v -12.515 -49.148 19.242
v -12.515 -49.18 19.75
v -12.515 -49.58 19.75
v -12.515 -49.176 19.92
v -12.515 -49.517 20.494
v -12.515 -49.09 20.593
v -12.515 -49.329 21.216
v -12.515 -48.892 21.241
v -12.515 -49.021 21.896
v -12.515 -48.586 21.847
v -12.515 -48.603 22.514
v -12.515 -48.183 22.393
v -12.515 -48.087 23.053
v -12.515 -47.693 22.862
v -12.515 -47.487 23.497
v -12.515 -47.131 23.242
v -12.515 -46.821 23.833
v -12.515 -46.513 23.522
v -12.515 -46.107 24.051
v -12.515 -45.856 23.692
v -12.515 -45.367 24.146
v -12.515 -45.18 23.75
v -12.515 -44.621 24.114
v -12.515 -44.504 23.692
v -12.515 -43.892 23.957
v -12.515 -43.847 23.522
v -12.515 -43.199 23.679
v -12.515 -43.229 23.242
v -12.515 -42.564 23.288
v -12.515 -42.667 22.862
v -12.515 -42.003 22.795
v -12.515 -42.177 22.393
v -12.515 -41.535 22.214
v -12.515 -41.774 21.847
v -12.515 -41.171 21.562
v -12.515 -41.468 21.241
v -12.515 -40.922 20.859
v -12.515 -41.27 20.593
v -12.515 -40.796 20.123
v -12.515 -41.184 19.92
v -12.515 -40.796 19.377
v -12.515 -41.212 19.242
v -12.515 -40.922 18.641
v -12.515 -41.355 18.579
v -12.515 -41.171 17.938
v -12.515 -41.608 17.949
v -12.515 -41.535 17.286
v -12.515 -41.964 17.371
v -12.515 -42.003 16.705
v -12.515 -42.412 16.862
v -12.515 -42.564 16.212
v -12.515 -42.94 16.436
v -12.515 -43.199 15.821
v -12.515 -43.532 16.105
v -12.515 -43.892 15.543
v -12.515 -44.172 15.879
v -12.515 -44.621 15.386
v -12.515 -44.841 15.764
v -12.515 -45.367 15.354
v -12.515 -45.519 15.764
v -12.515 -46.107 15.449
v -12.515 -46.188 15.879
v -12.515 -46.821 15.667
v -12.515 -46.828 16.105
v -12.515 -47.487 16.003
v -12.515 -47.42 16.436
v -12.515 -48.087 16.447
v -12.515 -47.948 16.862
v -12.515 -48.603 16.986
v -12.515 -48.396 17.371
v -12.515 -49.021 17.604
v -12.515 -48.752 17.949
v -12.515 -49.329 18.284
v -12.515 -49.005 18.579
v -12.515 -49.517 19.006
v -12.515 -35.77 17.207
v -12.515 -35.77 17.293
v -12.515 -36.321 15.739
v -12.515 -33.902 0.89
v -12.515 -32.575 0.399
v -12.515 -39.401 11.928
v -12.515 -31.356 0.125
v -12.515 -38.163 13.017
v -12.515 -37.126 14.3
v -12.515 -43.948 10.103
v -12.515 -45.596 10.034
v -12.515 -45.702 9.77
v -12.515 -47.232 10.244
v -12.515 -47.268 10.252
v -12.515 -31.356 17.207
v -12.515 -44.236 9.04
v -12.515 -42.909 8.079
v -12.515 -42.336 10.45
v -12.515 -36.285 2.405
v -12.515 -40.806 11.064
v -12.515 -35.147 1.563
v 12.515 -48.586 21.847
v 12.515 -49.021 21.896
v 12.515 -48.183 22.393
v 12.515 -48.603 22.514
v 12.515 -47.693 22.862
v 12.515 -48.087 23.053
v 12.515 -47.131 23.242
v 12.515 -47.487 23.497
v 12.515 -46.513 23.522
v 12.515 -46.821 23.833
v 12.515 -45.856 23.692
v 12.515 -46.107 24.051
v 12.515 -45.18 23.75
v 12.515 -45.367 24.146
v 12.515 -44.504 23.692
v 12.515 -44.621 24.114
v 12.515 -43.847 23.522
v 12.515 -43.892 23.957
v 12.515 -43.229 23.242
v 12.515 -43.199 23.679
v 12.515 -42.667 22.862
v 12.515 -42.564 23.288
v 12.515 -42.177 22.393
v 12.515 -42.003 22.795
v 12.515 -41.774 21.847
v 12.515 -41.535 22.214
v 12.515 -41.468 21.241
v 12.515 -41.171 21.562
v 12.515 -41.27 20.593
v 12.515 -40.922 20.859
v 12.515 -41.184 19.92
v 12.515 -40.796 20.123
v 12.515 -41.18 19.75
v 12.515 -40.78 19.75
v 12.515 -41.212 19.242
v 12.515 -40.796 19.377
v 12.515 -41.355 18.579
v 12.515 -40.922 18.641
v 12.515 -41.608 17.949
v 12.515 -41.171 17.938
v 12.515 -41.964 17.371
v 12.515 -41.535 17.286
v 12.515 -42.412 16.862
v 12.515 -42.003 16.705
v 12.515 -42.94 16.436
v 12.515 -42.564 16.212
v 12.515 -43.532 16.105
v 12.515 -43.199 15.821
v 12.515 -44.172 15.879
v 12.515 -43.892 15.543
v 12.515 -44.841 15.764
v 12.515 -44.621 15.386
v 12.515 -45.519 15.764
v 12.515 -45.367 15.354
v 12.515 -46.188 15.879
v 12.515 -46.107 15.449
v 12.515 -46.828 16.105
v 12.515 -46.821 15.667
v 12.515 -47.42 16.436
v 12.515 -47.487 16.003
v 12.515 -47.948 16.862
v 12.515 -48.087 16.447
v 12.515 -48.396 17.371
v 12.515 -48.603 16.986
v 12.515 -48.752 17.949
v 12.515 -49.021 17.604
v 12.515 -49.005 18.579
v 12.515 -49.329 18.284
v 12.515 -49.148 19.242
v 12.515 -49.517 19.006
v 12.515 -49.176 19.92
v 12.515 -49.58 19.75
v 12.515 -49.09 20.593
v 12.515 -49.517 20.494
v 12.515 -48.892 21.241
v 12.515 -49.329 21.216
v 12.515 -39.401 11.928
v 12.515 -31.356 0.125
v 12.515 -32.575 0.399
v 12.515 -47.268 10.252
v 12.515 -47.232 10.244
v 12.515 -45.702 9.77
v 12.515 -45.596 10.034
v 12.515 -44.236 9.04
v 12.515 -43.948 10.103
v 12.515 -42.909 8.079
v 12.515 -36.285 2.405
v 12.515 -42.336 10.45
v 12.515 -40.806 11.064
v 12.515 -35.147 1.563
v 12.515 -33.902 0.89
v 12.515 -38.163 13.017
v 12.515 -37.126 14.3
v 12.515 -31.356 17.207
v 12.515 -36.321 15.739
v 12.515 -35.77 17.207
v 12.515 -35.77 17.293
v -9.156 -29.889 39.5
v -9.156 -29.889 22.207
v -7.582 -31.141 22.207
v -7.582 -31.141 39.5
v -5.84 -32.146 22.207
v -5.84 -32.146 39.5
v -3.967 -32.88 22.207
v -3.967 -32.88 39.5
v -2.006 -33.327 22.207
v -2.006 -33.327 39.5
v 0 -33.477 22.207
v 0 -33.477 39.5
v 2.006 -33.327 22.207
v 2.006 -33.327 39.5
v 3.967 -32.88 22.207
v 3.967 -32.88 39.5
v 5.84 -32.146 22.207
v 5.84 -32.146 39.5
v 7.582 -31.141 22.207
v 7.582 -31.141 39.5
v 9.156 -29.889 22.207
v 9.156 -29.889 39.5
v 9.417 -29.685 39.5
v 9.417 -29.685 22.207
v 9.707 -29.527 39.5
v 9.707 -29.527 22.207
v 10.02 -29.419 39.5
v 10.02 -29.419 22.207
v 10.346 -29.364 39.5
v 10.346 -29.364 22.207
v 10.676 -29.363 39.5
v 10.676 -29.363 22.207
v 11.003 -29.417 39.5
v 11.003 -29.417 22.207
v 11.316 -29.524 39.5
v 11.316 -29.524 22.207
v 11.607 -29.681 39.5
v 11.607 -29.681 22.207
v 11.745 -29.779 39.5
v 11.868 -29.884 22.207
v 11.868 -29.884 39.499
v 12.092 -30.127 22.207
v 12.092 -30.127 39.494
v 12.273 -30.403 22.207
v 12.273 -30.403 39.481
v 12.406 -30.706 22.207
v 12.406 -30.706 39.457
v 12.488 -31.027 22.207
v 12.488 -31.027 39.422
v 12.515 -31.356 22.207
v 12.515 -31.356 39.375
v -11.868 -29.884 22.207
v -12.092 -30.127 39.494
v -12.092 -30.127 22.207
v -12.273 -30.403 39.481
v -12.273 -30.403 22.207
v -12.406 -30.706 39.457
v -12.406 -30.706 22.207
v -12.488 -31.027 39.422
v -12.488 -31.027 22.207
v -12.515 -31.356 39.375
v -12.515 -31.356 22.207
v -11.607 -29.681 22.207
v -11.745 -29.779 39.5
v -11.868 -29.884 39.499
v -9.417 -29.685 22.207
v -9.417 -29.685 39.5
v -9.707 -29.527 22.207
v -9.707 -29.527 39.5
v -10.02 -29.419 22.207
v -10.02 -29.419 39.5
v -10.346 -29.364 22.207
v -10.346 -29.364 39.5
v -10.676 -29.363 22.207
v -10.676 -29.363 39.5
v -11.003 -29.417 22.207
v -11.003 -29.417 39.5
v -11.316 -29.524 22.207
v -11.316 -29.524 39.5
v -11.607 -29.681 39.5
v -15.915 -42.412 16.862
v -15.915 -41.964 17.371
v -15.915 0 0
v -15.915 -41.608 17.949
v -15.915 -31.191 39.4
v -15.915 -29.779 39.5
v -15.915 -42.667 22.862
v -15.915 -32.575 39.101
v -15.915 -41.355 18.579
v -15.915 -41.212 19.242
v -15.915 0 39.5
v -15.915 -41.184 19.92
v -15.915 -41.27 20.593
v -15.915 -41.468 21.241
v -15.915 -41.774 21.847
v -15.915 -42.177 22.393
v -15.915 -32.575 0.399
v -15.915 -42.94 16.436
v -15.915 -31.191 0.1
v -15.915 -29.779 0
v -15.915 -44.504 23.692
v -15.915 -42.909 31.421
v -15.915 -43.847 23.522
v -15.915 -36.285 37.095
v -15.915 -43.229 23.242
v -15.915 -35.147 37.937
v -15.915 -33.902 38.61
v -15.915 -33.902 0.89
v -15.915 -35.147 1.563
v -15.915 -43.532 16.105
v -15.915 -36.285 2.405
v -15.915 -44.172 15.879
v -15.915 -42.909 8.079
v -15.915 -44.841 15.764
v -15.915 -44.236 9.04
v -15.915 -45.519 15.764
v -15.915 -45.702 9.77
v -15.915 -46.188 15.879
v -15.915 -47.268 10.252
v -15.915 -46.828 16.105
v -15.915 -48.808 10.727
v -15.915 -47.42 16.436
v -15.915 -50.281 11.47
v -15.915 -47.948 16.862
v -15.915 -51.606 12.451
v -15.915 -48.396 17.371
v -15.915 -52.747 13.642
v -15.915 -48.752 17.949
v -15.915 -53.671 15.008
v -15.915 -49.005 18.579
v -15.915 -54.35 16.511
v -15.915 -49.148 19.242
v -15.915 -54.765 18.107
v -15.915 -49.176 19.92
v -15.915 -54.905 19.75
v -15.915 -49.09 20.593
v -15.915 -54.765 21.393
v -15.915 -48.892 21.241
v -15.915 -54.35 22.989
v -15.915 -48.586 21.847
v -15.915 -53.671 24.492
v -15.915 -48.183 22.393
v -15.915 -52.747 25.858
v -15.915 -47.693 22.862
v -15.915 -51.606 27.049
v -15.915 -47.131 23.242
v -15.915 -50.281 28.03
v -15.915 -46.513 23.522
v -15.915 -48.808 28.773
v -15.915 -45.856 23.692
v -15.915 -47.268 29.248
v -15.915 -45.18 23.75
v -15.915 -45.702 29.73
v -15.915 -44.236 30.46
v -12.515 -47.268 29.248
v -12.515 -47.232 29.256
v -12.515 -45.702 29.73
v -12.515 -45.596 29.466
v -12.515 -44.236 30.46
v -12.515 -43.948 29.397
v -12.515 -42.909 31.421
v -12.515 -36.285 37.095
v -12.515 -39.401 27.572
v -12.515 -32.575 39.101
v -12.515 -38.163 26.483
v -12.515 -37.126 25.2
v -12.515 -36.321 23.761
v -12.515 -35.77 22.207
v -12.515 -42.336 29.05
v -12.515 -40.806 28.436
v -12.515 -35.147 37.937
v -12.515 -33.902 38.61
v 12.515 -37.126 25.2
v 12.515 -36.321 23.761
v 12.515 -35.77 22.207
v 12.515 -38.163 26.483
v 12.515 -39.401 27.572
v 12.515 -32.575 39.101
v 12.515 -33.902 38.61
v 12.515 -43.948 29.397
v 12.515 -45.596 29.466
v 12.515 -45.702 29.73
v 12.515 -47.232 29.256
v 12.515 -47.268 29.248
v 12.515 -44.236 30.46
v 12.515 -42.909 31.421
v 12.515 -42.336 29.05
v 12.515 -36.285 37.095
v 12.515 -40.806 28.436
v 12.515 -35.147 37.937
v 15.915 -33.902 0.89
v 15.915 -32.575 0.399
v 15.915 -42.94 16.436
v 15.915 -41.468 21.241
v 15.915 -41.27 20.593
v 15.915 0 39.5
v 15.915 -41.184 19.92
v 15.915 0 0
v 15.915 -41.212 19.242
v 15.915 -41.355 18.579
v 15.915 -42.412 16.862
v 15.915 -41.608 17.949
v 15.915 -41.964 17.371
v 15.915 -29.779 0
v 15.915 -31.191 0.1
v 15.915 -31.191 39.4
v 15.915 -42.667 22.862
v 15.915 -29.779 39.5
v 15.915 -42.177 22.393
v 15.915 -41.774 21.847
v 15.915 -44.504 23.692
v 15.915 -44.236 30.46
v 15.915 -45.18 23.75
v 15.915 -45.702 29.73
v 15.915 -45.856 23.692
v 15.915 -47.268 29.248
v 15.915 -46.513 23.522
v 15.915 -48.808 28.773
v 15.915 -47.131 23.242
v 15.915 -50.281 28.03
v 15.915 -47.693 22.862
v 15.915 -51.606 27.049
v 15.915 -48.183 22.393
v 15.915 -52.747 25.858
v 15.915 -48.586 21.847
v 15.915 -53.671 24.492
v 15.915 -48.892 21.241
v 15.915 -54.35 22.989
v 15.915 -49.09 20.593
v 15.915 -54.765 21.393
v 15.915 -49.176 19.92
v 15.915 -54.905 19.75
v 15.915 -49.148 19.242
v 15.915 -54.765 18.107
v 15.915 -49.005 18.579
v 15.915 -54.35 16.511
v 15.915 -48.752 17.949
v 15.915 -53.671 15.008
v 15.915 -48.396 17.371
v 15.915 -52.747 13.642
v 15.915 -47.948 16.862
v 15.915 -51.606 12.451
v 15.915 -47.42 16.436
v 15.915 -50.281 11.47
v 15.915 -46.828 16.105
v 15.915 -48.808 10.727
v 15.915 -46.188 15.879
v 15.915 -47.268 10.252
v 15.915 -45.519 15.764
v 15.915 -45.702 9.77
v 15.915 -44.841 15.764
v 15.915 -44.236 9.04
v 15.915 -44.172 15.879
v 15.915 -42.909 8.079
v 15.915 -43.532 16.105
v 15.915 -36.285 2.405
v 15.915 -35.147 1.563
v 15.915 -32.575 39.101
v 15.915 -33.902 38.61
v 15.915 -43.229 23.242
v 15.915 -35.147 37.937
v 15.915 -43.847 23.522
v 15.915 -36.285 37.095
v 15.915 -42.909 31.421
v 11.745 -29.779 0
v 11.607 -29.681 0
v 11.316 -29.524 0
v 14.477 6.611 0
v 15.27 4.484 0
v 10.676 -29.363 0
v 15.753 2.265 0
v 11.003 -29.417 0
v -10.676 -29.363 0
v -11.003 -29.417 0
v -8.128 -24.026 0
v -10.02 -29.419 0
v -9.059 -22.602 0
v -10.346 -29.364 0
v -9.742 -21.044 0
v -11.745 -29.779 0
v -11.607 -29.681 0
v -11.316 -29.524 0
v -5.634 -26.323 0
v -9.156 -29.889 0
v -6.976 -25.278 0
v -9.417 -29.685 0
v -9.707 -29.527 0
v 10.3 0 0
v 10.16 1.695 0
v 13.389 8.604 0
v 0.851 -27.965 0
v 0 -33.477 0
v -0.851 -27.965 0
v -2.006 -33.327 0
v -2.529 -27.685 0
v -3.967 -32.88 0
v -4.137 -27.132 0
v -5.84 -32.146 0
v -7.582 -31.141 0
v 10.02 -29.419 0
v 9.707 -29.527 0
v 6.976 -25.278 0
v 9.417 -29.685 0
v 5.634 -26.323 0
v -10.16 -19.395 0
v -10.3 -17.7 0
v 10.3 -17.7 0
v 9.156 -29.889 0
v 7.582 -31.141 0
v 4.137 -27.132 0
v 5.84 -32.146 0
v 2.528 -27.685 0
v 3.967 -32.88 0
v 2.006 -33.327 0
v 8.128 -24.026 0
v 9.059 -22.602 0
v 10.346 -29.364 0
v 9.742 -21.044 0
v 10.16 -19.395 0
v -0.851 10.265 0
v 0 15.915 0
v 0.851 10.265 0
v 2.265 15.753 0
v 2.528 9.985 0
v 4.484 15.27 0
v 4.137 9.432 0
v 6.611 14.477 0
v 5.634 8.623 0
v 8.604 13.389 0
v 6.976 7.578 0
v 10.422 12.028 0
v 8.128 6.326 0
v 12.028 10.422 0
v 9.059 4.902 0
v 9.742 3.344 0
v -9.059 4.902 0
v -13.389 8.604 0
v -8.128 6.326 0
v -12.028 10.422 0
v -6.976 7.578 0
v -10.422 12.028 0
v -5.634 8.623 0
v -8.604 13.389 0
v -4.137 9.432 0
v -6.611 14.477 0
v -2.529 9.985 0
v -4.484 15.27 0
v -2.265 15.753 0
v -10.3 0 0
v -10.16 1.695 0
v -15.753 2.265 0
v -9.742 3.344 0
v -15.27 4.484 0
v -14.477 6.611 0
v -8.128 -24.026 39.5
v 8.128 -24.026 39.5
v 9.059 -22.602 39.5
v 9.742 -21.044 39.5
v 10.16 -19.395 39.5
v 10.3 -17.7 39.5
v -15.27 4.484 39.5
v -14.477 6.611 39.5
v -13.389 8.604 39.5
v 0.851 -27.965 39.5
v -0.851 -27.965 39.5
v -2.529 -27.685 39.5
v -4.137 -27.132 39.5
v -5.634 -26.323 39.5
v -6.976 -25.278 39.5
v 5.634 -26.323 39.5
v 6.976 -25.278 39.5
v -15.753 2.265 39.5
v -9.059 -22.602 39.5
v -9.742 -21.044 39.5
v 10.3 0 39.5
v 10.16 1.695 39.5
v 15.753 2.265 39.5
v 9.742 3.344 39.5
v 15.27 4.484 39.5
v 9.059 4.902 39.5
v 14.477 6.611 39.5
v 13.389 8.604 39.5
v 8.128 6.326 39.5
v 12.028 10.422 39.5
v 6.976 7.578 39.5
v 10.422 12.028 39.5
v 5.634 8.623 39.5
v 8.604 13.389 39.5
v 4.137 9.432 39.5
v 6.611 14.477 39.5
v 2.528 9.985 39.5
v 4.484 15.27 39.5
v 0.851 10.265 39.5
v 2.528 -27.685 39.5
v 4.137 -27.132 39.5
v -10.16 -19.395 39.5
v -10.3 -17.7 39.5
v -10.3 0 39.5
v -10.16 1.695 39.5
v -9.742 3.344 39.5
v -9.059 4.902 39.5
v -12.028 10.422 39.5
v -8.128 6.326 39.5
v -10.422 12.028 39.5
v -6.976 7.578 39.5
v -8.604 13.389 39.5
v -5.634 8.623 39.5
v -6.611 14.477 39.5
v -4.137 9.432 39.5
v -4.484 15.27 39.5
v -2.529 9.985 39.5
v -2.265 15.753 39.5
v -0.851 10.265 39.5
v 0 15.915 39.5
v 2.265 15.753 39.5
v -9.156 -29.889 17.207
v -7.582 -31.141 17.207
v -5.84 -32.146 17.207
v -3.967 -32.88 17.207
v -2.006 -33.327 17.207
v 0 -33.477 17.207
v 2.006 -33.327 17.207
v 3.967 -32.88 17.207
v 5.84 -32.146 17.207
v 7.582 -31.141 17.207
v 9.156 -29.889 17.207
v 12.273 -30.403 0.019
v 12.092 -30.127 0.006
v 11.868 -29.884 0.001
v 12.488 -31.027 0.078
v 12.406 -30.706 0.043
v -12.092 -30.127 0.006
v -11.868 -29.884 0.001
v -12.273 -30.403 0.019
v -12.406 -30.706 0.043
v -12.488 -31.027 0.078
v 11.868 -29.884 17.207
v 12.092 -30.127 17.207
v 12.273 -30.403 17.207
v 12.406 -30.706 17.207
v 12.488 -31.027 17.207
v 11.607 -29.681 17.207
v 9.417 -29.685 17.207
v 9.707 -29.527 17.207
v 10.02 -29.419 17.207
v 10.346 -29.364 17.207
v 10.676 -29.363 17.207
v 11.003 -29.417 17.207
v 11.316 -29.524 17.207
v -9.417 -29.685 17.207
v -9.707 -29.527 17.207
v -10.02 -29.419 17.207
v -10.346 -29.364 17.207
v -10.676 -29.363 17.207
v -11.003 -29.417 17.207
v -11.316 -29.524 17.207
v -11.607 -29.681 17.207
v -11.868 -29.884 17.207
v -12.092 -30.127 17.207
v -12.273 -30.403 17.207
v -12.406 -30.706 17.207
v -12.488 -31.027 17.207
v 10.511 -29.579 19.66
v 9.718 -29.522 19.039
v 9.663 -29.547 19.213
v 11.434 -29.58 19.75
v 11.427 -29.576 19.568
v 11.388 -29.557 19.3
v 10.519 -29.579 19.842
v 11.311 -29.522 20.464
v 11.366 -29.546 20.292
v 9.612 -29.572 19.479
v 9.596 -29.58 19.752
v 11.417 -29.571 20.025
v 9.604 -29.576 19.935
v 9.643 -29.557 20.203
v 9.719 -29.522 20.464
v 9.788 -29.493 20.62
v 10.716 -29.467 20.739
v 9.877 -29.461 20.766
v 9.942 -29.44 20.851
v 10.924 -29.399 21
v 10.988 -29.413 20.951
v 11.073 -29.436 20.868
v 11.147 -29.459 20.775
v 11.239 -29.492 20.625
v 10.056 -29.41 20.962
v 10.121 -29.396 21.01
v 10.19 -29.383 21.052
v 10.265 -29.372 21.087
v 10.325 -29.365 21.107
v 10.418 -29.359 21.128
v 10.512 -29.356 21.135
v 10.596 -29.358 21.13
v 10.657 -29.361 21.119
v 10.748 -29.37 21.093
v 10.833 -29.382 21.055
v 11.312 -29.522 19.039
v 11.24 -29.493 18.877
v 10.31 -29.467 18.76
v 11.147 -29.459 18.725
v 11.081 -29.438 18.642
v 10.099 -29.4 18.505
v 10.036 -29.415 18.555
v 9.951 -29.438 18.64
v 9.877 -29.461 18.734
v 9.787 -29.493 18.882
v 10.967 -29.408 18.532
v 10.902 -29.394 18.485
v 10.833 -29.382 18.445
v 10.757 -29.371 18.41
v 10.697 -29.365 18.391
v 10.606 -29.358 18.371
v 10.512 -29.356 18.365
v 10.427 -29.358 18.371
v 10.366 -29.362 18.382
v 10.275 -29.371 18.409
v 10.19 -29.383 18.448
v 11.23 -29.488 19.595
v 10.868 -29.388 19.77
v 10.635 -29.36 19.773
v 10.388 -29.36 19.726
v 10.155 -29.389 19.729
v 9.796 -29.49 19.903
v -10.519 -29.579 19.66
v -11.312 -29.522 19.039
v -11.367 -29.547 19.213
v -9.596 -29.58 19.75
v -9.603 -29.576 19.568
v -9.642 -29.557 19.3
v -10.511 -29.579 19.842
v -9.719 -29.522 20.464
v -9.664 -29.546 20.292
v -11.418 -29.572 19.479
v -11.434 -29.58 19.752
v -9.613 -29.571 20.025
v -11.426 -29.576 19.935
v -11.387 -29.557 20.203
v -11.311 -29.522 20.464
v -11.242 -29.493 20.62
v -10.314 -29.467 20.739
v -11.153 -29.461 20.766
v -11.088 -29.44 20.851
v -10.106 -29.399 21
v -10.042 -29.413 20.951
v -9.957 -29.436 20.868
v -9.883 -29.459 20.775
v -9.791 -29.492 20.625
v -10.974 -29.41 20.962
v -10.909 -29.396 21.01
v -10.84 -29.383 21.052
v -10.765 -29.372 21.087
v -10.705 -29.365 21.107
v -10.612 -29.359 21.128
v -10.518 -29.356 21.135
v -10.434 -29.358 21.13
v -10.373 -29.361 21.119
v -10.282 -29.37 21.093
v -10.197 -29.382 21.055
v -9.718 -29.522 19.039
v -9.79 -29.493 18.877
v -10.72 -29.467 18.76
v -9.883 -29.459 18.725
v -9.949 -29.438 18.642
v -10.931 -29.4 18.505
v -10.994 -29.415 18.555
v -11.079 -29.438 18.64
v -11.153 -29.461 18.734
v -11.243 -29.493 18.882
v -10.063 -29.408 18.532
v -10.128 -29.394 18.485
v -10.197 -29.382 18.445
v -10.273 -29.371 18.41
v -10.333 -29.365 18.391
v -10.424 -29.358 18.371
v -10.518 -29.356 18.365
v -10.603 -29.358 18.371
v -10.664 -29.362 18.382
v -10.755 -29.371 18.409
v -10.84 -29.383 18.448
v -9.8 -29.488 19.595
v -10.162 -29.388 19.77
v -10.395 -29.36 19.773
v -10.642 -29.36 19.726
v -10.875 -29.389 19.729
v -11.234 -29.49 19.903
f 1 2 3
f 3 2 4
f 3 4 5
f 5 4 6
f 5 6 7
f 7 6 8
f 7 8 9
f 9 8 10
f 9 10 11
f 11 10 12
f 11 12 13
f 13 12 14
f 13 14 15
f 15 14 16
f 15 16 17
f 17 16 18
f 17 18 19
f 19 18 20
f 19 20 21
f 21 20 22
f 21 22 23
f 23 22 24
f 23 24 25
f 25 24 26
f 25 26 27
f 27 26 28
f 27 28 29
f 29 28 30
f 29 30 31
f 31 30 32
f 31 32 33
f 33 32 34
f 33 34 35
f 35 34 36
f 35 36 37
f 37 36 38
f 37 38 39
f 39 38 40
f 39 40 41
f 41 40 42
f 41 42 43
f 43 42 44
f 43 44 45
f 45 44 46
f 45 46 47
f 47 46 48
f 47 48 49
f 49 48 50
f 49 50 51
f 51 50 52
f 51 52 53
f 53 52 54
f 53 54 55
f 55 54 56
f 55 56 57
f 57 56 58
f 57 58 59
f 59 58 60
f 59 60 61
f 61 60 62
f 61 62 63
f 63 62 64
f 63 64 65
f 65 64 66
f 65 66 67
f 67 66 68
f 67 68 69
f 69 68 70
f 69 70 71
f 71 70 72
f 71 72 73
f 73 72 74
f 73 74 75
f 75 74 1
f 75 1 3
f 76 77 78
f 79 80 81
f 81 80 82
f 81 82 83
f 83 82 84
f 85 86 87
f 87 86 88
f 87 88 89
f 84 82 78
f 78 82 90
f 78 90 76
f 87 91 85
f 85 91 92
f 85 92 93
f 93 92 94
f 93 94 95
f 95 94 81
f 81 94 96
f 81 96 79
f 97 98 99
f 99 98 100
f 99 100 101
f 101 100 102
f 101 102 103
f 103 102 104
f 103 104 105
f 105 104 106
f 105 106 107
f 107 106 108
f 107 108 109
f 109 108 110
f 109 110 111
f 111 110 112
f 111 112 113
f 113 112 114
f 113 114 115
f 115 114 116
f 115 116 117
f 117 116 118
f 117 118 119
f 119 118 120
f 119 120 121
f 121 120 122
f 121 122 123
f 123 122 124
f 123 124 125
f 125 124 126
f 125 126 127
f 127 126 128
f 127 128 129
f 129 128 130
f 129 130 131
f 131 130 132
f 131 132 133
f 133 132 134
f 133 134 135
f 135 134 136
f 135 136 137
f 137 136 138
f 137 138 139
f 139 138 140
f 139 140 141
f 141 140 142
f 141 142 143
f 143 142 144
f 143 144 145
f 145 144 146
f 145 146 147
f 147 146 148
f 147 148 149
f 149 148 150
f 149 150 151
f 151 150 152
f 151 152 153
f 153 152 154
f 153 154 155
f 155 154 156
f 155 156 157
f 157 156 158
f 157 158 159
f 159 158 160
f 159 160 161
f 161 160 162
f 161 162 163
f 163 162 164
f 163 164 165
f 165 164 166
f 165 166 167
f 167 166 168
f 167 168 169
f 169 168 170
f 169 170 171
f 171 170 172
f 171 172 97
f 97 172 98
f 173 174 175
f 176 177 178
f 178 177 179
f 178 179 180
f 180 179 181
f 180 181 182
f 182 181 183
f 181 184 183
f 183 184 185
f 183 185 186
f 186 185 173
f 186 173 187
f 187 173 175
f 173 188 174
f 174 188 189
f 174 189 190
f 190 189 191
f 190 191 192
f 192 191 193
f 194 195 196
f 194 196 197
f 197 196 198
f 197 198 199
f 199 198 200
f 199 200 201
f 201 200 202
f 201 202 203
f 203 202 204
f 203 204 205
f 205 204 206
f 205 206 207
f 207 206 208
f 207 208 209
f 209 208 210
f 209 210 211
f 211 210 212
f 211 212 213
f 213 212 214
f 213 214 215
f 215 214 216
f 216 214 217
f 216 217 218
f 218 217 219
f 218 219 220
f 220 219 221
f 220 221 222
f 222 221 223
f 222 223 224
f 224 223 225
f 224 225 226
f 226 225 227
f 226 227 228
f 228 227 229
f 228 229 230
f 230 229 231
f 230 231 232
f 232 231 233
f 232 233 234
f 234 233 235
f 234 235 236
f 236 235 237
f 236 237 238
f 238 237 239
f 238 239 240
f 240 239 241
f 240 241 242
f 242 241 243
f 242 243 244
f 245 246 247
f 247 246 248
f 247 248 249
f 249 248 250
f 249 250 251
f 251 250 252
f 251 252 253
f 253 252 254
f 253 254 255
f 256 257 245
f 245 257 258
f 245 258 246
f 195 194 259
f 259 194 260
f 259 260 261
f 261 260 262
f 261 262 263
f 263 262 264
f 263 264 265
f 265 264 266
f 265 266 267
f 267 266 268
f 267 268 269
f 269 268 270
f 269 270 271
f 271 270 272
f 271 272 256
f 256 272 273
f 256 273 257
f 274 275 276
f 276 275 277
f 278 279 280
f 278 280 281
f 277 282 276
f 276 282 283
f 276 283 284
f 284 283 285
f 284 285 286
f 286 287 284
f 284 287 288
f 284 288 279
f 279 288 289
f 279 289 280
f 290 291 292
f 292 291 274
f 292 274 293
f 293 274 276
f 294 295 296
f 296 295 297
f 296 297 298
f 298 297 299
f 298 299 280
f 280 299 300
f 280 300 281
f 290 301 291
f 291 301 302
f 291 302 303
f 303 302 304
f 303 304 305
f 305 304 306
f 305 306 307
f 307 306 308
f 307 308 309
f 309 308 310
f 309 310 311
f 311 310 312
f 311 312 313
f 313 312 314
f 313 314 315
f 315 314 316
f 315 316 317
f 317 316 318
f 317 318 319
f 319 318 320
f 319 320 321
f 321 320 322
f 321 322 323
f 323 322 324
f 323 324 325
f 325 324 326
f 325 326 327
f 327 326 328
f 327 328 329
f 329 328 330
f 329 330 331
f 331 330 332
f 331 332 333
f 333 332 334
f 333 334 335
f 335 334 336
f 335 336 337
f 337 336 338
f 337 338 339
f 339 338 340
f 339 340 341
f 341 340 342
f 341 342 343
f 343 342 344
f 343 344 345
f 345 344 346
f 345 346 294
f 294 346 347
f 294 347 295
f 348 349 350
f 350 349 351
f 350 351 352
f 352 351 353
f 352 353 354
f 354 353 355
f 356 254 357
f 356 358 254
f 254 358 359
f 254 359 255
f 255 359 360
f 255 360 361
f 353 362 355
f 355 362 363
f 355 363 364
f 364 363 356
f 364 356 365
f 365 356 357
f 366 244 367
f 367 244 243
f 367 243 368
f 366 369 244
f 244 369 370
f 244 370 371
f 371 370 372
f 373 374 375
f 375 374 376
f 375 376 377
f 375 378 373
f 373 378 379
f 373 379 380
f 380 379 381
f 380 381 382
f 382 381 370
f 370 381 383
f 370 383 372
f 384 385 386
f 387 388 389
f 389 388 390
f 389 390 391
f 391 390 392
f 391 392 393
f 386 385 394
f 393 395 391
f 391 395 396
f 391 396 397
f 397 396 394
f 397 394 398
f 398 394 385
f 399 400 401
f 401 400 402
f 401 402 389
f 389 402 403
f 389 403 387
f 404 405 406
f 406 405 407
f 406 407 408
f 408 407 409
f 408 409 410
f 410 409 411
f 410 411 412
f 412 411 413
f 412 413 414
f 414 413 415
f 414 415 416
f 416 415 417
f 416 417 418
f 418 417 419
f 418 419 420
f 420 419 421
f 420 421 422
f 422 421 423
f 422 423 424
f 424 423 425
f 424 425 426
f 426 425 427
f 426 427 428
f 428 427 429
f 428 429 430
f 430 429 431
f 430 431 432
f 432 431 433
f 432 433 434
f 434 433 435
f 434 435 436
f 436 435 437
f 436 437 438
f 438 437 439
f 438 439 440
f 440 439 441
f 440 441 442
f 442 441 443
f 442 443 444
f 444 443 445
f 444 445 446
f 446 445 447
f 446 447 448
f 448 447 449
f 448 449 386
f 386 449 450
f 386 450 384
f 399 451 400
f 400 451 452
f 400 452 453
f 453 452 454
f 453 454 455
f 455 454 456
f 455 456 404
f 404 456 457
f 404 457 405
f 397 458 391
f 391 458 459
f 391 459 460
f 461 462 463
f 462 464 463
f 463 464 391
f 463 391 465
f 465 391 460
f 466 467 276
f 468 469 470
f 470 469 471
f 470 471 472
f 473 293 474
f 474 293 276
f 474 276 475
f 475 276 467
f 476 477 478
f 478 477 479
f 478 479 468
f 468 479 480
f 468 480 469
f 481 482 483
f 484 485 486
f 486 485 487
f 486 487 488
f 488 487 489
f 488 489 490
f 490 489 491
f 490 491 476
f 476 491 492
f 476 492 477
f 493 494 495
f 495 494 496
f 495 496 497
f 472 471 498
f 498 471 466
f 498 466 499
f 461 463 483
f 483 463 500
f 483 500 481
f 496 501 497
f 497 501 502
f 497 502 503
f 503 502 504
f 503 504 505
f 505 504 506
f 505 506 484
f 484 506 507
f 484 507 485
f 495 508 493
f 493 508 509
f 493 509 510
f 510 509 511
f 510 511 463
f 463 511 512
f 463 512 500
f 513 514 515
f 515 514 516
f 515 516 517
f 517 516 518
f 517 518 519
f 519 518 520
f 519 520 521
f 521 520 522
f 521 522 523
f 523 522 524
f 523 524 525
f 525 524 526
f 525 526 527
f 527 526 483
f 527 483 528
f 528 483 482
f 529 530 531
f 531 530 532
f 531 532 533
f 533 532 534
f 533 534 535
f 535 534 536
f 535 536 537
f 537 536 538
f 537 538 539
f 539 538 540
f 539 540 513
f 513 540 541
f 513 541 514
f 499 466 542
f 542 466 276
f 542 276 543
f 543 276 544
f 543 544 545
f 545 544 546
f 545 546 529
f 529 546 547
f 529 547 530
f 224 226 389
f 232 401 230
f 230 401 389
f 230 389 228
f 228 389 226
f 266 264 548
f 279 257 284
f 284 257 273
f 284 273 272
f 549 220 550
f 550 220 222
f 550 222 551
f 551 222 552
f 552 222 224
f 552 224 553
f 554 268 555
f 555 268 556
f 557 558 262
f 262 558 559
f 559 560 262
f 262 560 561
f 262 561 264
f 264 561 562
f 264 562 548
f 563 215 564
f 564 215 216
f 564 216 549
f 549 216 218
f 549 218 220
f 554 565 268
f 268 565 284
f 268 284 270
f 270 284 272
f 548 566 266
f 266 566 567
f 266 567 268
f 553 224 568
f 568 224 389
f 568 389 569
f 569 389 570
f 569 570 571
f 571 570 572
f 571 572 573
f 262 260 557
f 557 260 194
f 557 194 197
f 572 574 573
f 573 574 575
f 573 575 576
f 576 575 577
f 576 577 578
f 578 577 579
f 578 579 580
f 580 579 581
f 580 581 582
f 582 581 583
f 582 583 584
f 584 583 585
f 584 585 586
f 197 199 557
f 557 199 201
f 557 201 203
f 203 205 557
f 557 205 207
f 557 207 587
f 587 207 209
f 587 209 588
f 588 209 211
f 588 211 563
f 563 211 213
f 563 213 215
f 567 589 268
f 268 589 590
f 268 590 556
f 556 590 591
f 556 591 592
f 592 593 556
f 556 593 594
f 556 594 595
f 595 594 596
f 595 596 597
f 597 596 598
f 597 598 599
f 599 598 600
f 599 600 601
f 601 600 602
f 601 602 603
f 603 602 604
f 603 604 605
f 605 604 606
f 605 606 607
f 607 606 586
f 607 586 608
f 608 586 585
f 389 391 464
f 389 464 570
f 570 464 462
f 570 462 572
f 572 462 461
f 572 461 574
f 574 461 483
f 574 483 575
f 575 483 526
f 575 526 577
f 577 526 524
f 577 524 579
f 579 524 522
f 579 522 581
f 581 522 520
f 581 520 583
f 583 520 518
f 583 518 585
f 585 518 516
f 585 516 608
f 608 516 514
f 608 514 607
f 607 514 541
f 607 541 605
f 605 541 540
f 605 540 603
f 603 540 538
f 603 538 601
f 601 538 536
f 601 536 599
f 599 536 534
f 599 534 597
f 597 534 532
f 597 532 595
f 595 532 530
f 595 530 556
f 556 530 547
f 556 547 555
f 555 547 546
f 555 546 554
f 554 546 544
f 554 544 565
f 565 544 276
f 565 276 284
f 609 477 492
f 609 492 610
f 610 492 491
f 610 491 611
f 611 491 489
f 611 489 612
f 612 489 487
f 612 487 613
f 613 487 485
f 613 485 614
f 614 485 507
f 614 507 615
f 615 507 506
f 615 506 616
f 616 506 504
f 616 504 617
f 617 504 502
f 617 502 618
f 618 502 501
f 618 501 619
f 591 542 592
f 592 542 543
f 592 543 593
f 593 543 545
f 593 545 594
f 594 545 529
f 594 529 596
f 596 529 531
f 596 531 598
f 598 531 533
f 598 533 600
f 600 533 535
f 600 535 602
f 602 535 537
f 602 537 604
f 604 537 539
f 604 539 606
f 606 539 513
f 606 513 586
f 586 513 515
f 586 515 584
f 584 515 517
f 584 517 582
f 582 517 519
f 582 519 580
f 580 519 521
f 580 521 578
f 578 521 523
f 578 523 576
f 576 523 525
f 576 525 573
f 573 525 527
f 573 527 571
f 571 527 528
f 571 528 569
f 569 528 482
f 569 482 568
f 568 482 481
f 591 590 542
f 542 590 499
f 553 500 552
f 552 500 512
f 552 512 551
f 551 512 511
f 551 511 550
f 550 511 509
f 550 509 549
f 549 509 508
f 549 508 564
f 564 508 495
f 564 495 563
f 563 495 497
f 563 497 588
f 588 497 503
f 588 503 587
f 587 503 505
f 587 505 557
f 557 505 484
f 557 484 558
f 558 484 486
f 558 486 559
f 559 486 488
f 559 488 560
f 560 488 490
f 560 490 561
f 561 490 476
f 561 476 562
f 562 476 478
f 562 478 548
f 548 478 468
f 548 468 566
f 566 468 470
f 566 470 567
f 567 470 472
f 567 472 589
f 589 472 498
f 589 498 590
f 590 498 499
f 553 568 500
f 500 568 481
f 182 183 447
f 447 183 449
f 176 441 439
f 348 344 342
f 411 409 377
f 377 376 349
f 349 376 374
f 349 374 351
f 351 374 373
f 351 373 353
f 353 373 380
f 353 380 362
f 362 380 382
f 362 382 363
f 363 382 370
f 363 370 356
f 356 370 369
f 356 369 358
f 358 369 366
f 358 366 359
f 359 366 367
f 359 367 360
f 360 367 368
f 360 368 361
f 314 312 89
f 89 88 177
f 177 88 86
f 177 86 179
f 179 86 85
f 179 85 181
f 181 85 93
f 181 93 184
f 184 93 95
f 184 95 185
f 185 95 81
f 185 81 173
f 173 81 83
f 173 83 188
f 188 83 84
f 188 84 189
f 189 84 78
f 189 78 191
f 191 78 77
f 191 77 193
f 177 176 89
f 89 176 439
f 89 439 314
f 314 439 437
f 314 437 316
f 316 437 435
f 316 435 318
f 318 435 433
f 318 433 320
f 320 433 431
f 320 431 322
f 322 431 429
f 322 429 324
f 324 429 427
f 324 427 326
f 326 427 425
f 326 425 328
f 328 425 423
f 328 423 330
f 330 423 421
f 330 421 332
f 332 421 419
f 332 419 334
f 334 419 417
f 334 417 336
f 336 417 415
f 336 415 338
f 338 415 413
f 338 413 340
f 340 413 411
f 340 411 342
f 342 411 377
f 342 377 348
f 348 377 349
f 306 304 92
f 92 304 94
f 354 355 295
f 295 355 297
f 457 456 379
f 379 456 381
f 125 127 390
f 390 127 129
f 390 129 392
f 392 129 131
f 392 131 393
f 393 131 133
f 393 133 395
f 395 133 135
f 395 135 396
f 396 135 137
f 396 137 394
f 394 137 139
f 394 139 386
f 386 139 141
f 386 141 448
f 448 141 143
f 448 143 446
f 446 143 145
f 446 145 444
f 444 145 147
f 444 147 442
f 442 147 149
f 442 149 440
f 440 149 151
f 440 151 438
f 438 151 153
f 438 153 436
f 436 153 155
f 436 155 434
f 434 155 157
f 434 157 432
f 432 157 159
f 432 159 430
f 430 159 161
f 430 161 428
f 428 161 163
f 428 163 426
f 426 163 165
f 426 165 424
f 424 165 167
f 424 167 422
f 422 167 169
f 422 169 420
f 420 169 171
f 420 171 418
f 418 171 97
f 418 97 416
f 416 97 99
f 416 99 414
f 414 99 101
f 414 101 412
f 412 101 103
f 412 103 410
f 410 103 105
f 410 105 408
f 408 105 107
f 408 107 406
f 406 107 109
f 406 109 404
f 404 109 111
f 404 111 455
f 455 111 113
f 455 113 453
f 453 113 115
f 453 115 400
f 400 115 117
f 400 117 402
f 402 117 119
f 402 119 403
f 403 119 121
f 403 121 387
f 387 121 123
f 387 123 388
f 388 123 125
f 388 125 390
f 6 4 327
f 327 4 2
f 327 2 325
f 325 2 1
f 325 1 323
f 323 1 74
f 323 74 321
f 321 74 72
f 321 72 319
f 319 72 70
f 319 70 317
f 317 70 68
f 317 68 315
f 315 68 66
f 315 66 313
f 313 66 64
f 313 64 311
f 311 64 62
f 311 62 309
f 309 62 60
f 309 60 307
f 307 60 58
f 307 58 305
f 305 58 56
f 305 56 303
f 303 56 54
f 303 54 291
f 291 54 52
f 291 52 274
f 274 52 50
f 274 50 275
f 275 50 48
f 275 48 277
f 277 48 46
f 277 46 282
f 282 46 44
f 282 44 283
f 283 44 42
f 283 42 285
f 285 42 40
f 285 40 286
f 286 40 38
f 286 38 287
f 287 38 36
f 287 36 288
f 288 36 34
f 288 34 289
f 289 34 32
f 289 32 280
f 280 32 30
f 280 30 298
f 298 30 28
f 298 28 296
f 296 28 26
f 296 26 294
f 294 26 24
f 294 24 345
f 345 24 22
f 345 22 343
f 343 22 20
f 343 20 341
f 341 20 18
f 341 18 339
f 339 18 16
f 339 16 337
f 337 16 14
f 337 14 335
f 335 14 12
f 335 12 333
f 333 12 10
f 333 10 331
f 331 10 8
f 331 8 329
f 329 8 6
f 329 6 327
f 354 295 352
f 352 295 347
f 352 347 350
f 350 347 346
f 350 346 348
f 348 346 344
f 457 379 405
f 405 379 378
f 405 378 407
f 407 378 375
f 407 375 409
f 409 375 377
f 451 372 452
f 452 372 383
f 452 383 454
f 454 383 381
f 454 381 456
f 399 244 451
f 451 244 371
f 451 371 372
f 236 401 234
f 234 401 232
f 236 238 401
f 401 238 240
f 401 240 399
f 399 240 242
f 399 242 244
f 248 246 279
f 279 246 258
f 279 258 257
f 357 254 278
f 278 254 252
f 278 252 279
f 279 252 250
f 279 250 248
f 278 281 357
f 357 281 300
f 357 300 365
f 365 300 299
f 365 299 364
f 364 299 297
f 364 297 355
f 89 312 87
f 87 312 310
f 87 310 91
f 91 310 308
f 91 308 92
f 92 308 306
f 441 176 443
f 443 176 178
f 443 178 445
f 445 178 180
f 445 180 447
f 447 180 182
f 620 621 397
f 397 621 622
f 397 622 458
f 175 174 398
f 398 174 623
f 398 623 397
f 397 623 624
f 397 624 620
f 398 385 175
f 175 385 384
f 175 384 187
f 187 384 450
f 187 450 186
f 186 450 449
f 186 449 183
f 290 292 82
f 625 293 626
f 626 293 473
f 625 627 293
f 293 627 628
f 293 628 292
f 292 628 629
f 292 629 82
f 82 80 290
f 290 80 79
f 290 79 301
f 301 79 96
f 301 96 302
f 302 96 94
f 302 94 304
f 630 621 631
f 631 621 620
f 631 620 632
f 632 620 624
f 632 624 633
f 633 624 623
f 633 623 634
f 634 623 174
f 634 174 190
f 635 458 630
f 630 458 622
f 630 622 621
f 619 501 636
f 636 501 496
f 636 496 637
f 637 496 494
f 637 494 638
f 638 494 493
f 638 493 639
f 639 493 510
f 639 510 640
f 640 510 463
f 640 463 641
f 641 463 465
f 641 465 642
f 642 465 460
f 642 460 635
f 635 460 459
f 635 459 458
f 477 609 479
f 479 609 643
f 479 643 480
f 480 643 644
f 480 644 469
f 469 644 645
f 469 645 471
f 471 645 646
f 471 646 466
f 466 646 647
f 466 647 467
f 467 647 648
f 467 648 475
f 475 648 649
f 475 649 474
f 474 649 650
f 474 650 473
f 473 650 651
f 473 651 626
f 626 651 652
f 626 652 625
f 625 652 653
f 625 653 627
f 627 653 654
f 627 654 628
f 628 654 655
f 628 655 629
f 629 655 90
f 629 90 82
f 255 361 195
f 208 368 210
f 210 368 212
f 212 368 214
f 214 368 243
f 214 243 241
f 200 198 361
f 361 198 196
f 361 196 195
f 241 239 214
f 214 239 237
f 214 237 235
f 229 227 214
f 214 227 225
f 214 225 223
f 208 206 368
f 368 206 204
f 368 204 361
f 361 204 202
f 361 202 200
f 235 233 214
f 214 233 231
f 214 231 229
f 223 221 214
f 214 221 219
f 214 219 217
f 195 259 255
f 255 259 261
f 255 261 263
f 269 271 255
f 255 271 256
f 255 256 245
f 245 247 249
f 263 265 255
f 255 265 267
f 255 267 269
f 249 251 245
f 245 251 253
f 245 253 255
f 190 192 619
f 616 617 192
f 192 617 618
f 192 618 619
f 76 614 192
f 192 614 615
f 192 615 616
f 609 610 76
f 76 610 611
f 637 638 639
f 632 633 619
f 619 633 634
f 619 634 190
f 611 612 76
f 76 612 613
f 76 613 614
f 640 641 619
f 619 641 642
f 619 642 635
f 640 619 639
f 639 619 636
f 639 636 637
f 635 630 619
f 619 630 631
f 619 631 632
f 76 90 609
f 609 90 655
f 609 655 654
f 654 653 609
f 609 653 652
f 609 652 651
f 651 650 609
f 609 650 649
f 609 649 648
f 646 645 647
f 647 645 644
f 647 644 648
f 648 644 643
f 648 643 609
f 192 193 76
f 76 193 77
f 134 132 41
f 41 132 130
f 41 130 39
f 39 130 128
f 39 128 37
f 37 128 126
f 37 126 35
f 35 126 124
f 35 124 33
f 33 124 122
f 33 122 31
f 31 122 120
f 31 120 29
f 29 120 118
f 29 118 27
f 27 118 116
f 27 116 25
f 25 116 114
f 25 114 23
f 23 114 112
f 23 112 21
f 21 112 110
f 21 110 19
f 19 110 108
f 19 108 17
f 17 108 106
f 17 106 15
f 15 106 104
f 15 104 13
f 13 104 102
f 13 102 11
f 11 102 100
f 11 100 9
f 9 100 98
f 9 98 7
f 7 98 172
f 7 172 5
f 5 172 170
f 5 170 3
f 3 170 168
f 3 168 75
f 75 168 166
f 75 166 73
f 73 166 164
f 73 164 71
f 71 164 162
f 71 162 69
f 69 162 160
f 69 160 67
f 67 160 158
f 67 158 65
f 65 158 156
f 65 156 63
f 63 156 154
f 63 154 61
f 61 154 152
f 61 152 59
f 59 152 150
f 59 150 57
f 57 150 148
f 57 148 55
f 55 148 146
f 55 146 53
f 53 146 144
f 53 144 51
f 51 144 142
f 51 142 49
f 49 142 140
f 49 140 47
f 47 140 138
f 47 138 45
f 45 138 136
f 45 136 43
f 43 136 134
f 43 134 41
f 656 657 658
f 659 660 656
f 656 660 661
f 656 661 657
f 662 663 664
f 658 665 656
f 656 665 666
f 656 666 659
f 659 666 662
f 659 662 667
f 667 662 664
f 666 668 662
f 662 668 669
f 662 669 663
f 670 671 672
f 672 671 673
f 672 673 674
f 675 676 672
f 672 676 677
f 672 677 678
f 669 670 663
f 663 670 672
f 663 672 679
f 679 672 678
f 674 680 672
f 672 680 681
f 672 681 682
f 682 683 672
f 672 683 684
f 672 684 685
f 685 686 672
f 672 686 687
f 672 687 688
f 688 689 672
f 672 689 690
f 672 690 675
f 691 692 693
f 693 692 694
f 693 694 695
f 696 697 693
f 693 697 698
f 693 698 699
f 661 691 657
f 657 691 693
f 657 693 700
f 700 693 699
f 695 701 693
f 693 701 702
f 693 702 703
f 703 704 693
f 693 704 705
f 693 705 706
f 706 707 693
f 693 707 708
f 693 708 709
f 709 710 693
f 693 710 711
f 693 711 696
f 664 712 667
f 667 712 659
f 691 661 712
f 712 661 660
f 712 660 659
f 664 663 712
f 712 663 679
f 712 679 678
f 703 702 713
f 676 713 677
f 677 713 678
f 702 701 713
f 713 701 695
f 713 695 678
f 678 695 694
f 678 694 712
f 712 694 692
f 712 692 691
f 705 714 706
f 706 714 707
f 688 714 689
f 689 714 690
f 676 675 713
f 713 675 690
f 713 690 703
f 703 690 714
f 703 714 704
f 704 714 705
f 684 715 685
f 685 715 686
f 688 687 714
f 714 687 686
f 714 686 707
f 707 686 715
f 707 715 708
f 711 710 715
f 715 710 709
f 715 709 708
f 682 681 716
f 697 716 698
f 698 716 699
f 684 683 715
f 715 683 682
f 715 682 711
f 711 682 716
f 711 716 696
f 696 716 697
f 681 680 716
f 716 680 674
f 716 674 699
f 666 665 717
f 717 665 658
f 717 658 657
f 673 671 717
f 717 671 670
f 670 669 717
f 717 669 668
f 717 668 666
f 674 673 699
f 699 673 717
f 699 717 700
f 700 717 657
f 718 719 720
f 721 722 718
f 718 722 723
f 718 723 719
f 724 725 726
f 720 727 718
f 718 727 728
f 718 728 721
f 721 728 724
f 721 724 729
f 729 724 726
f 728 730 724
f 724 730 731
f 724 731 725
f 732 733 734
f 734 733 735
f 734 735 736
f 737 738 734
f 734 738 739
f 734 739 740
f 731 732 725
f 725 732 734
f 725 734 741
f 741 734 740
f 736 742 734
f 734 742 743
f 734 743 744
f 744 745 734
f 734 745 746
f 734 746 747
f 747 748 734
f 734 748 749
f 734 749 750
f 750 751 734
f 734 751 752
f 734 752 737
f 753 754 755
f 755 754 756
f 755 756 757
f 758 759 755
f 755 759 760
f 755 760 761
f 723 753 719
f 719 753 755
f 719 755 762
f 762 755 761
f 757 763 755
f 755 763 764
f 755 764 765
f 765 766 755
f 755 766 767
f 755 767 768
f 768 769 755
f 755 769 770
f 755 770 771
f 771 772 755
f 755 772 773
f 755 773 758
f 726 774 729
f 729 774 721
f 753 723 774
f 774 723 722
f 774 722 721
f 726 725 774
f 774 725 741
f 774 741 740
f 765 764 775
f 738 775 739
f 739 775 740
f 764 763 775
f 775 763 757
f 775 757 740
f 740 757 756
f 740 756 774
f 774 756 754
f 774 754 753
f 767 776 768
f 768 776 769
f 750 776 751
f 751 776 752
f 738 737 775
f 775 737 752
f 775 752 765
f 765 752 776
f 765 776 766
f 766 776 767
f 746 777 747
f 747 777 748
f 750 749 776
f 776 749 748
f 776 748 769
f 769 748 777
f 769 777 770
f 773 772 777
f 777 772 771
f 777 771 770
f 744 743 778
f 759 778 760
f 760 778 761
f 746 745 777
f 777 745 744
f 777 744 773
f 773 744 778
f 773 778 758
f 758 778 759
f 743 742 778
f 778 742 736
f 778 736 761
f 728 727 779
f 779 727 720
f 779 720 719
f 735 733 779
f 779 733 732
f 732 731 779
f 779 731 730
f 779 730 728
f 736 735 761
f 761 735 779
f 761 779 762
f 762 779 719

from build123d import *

# Parameters (mm, degrees)
BOSS_EXTRUDE1_DEPTH  = 39.5
CUT_EXTRUDE1_DEPTH   = 75.75264493648368
M7_CLEARANCE_HOLE1_D = 8
FILLET1_R            = 10
FILLET3_R            = 2
BOSS_EXTRUDE2_REACH  = 76.753
SKETCH3_3_R          = 9.724999999999993
SKETCH3_3_R_2        = 4.4


with BuildPart() as part:
    # Sketch2 → Boss-Extrude1 (new body)
    with BuildSketch(Plane.XY):
        with BuildLine():
            Line((-15.914999999999996, 0), (-15.914999999999988, -54.904999999999994))
            Line((-15.914999999999988, -54.904999999999994), (-12.514999999999986, -54.904999999999994))
            Line((-12.514999999999986, -54.904999999999994), (-12.515, -25))
            ThreePointArc((-12.515, -25), (4.71e-15, -33.47684031960013), (12.515, -25))
            Line((12.515, -25), (12.515000000000002, -54.904999999999994))
            Line((12.515000000000002, -54.904999999999994), (15.915, -54.904999999999994))
            Line((15.915, -54.904999999999994), (15.914999999999996, 3.9e-15))
            ThreePointArc((15.914999999999996, 3.9e-15), (9.7e-16, 15.914999999999996), (-15.914999999999996, 0))
        make_face()
        with BuildLine():
            Line((10.3, 1.26e-15), (10.3, -17.7))
            ThreePointArc((10.3, -17.7), (3.82e-15, -28), (-10.299999999999997, -17.700000000000003))
            Line((-10.299999999999997, -17.700000000000003), (-10.3, -1.26e-15))
            ThreePointArc((-10.3, -1.26e-15), (-1.66e-15, 10.3), (10.3, 1.26e-15))
        make_face(mode=Mode.SUBTRACT)
    extrude(amount=BOSS_EXTRUDE1_DEPTH)

    # Sketch3 → Cut-Extrude1 (cut, through all)
    with BuildSketch(Plane.ZY.offset(15.914999999999996)):
        with BuildLine():
            Line((0, -54.904999999999994), (19.74999999999999, -54.904999999999994))
            ThreePointArc((19.74999999999999, -54.904999999999994), (12.873386552960827, -52.05661344703917), (10.025000000000007, -45.18))
            Line((10.025, -45.18), (0, -33.47684031960014))
            Line((0, -33.47684031960014), (0, -54.904999999999994))
        make_face()
        with BuildLine():
            Line((19.74999999999999, -54.904999999999994), (39.5, -54.904999999999994))
            Line((39.5, -54.904999999999994), (39.5, -33.47684031960014))
            Line((39.5, -33.47684031960014), (29.475, -45.18))
            ThreePointArc((29.474999999999994, -45.18), (26.626613447039162, -52.056613447039176), (19.74999999999999, -54.904999999999994))
        make_face()
    extrude(amount=-CUT_EXTRUDE1_DEPTH, mode=Mode.SUBTRACT)

    # M7 Clearance Hole1 (through all)
    with Locations(Plane.ZY.offset(15.914999999999996)):
        with Locations((19.75, -45.18)):
            Hole(M7_CLEARANCE_HOLE1_D / 2)

    # Fillet1
    fillet1_edges = [part.edges().sort_by_distance(p)[0] for p in [
        (-14.21499999999999, -45.18, 10.025000000000002),
        (14.215000000000002, -45.17999999999999, 10.025000000000002),
        (-14.214999999999993, -33.47684031960014, 0),
        (14.215, -33.476840319600136, 0),
        (-14.21499999999999, -45.18, 29.474999999999998),
        (14.215000000000002, -45.17999999999999, 29.474999999999998),
        (-14.214999999999993, -33.47684031960014, 39.5),
        (14.215, -33.476840319600136, 39.5),
    ]]
    fillet(fillet1_edges, radius=FILLET1_R)

    # Fillet3
    fillet3_edges = [part.edges().sort_by_distance(p)[0] for p in [
        (12.515, -25, 19.75),
        (-12.515000000000002, -25, 19.75),
    ]]
    fillet(fillet3_edges, radius=FILLET3_R)

    # Boss-Extrude2: up to this face of the body (flat: up to its plane)
    boss_extrude2_end = Plane(part.part.faces().sort_by_distance((12.515, -40.102126489, 19.75))[0])
    # Sketch3<3> → Boss-Extrude2 (add, up to the picked face)
    with BuildSketch(Plane.ZY.offset(15.914999999999996), mode=Mode.PRIVATE) as boss_extrude2_sk1:
        with Locations((19.75, -45.18)):
            Circle(SKETCH3_3_R)
        with Locations(Location((19.75, -45.18, 0), (0, 0, 270))):
            Circle(SKETCH3_3_R_2, mode=Mode.SUBTRACT)
    boss_extrude2_tool1 = split(extrude(boss_extrude2_sk1.sketch, amount=-BOSS_EXTRUDE2_REACH, mode=Mode.PRIVATE), bisect_by=boss_extrude2_end, keep=Keep.BOTH, mode=Mode.PRIVATE)
    # Sketch3<3> → Boss-Extrude2 (add, up to the picked face)
    with BuildSketch(Plane.ZY.offset(15.914999999999996), mode=Mode.PRIVATE) as boss_extrude2_sk2:
        with BuildLine():
            Line((17.206534975176847, -35.77037402891417), (17.293465024823192, -35.77037402891417))
            ThreePointArc((17.293465024823192, -35.77037402891417), (19.750000000000018, -35.455000000000005), (22.206534975176844, -35.770374028914176))
            Line((22.206534975176847, -35.77037402891417), (22.206534975176847, -28.83040215808249))
            ThreePointArc((22.20653497517679, -28.830402158082467), (19.697179052869707, -29.57968293716084), (17.20653497517685, -28.770374028914166))
            Line((17.206534975176847, -28.77037402891417), (17.206534975176847, -35.77037402891417))
        make_face()
    boss_extrude2_tool2 = split(extrude(boss_extrude2_sk2.sketch, amount=-BOSS_EXTRUDE2_REACH, mode=Mode.PRIVATE), bisect_by=boss_extrude2_end, keep=Keep.BOTH, mode=Mode.PRIVATE)
    # Sketch3<3> → Boss-Extrude2 (add, up to the picked face)
    with BuildSketch(Plane.ZY.offset(15.914999999999996), mode=Mode.PRIVATE) as boss_extrude2_sk3:
        with BuildLine():
            ThreePointArc((22.206534975176844, -35.770374028914176), (19.750000000000018, -35.455000000000005), (17.293465024823192, -35.77037402891417))
            Line((17.293465024823192, -35.77037402891417), (22.206534975176847, -35.77037402891417))
        make_face()
    boss_extrude2_tool3 = split(extrude(boss_extrude2_sk3.sketch, amount=-BOSS_EXTRUDE2_REACH, mode=Mode.PRIVATE), bisect_by=boss_extrude2_end, keep=Keep.BOTH, mode=Mode.PRIVATE)
    add(boss_extrude2_tool1.solids().sort_by(Axis((-15.915, -45.18, 10.300065), (1, 1.9e-16, 0)))[0])
    add(boss_extrude2_tool2.solids().sort_by(Axis((-15.915, -32.443059, 19.701397), (1, 1.9e-16, 0)))[0])
    add(boss_extrude2_tool3.solids().sort_by(Axis((-15.915, -35.644047, 19.75), (1, 1.9e-16, 0)))[0])


solid = part.part
